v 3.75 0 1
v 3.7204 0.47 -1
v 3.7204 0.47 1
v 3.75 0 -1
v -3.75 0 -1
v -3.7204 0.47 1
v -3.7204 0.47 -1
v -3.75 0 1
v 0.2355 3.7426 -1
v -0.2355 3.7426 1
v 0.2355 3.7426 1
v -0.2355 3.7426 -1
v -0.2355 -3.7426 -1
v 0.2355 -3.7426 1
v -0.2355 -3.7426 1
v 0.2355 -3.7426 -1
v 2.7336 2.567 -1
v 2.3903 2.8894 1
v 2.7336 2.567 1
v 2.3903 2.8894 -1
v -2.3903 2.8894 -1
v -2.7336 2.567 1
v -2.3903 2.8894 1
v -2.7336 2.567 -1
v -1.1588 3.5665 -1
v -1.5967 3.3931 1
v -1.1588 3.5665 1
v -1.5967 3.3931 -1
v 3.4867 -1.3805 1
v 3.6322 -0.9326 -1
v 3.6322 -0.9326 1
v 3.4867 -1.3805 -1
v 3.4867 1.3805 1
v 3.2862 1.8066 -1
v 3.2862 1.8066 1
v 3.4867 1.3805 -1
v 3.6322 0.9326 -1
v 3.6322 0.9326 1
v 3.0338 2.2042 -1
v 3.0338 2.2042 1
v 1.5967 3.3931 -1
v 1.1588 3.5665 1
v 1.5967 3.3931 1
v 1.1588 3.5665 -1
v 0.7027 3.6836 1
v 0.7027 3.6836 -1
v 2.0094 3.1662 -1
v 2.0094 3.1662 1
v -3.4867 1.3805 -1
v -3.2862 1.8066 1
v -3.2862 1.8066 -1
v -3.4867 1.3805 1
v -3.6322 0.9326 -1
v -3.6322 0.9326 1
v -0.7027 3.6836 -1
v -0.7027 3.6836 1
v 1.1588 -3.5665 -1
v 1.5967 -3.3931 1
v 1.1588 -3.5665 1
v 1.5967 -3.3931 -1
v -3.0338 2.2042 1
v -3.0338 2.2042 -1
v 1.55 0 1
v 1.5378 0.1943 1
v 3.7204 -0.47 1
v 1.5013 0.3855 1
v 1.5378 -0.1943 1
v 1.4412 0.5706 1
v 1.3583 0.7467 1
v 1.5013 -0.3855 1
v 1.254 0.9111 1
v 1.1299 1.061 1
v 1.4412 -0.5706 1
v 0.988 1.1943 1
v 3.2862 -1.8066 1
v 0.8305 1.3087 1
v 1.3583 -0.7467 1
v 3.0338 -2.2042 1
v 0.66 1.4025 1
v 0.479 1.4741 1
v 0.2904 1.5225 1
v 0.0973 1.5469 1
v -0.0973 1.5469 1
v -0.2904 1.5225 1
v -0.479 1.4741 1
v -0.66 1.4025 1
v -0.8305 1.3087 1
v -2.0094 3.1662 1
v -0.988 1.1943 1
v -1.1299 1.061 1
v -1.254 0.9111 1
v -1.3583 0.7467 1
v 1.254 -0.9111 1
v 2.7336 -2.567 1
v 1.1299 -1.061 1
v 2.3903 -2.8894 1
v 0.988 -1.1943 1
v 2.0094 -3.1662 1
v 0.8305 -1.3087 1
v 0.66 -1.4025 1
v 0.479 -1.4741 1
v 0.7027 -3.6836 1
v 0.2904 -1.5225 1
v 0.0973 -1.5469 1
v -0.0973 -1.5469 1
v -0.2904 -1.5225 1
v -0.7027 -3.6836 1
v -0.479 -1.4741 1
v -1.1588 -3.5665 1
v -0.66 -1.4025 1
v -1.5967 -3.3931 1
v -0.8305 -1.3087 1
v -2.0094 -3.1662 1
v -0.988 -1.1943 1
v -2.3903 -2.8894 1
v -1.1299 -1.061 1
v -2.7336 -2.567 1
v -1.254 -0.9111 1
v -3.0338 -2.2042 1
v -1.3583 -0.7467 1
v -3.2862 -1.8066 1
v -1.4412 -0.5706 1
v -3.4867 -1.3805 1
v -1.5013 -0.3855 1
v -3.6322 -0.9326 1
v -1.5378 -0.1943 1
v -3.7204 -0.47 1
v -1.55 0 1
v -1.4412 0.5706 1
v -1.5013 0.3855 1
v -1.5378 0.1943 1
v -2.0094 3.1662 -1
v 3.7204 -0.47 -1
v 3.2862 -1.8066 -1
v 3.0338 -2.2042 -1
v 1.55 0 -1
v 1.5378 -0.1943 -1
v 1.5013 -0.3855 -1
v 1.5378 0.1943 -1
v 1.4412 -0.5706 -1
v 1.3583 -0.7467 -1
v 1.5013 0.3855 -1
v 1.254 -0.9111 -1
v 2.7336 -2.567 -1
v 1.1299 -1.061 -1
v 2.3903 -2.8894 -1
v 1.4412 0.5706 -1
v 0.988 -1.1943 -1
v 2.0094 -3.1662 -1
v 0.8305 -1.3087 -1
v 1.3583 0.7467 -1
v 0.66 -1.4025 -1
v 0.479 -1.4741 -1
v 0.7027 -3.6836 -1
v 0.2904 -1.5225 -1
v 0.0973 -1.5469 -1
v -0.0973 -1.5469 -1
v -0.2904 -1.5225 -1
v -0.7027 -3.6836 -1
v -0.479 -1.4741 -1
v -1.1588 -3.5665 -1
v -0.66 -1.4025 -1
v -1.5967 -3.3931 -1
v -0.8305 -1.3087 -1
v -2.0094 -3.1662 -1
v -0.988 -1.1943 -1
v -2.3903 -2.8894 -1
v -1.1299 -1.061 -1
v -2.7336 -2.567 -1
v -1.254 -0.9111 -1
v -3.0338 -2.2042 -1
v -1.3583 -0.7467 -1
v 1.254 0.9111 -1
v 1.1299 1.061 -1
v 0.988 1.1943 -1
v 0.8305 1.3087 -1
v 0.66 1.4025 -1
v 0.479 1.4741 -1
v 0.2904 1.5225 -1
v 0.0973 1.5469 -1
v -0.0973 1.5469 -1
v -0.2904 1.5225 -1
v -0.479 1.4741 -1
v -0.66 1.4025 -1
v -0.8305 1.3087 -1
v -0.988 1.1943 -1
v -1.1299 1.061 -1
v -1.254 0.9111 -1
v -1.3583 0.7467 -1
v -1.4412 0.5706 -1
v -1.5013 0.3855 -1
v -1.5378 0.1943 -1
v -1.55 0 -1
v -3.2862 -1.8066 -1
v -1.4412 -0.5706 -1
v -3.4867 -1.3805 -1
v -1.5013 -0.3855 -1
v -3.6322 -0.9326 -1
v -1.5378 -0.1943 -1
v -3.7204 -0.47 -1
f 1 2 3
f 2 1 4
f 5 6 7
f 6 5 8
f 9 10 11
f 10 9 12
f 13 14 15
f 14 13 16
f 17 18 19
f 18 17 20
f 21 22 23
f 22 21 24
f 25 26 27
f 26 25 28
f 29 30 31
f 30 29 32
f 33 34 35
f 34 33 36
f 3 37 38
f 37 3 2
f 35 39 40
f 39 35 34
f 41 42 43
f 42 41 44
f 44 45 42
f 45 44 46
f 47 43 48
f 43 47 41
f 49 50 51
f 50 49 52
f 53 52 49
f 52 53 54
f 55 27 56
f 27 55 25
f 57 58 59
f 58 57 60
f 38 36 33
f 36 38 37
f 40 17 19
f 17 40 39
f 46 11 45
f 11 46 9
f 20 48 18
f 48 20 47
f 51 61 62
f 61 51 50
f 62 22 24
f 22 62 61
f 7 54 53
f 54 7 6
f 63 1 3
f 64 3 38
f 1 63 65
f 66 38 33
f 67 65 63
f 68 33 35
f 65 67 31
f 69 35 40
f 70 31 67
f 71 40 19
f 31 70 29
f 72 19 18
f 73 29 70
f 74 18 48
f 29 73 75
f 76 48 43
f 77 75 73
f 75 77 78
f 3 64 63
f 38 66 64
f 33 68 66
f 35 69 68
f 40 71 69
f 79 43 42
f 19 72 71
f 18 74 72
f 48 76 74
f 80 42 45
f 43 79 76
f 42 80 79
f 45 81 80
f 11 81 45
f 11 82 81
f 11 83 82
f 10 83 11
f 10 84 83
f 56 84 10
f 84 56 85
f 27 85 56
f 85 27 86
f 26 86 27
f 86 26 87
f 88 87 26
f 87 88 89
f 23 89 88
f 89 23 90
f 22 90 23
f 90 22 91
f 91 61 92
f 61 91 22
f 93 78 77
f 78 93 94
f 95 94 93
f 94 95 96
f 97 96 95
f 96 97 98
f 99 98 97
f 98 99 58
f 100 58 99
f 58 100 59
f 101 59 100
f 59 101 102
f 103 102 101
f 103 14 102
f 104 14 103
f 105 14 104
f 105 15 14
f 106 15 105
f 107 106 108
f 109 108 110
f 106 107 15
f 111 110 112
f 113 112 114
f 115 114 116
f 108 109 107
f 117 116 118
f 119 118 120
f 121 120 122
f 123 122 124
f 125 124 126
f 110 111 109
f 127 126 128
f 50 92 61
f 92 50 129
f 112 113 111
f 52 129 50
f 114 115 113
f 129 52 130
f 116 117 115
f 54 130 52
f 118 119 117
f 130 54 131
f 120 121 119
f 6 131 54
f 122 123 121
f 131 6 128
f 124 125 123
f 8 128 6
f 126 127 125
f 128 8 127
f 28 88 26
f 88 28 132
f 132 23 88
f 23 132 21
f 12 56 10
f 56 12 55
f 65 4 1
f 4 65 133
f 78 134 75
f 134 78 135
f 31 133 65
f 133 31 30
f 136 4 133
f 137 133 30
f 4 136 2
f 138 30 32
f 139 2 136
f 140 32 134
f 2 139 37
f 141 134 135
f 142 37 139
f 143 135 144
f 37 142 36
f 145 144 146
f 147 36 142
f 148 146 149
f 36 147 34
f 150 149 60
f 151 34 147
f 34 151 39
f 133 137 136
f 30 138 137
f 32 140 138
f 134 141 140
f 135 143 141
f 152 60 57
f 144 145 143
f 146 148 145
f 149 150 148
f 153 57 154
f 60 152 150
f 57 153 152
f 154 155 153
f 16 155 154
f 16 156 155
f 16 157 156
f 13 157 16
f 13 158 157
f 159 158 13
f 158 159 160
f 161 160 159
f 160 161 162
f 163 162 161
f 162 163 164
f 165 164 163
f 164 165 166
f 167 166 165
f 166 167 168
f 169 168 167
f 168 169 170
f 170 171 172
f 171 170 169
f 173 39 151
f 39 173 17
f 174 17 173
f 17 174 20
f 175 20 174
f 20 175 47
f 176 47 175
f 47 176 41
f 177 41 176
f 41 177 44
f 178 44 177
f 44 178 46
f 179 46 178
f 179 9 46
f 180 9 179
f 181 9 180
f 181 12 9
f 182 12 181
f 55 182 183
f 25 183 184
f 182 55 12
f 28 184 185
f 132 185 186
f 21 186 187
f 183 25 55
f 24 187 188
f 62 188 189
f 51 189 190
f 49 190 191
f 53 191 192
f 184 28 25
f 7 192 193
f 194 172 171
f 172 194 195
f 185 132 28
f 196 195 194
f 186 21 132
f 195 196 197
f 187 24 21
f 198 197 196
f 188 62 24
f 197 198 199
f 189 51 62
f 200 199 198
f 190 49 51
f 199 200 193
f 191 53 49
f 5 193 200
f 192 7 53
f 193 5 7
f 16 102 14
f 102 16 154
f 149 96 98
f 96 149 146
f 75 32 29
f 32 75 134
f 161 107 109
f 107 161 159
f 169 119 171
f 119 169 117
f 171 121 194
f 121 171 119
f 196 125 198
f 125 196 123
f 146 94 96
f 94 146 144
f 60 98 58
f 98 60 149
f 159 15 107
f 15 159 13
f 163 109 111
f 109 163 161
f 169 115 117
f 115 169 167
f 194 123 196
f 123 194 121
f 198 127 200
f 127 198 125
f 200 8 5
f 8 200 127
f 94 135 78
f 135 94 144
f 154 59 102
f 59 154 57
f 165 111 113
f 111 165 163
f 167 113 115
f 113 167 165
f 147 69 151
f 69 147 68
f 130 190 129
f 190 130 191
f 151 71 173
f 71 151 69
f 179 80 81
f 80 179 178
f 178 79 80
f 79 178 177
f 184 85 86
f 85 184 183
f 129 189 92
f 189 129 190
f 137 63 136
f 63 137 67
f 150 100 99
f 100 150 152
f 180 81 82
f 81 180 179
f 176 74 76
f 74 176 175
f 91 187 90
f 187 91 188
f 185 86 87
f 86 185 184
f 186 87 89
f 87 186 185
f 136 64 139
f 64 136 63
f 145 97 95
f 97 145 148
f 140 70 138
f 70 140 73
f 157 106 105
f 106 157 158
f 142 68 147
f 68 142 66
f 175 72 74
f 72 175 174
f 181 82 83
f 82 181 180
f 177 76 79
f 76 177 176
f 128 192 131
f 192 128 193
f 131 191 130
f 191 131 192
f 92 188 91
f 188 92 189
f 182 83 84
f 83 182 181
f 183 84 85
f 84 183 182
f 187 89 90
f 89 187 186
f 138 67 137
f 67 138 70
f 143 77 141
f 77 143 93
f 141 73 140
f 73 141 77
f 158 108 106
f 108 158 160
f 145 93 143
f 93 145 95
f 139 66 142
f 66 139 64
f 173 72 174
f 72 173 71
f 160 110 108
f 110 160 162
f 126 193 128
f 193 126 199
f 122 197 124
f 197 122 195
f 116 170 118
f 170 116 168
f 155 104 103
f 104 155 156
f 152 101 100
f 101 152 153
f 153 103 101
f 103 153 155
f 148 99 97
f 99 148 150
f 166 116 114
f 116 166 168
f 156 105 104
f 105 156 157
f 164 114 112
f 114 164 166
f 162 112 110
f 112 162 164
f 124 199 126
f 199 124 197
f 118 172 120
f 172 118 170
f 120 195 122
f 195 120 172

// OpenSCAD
$fn = 50;


difference() {
	union() {
		translate(v = [0, 0, -1.0000000000]) {
			cylinder(h = 2, r = 3.7500000000);
		}
	}
	union() {
		translate(v = [0, 0, -100.0000000000]) {
			cylinder(h = 200, r = 1.5500000000);
		}
	}
}
